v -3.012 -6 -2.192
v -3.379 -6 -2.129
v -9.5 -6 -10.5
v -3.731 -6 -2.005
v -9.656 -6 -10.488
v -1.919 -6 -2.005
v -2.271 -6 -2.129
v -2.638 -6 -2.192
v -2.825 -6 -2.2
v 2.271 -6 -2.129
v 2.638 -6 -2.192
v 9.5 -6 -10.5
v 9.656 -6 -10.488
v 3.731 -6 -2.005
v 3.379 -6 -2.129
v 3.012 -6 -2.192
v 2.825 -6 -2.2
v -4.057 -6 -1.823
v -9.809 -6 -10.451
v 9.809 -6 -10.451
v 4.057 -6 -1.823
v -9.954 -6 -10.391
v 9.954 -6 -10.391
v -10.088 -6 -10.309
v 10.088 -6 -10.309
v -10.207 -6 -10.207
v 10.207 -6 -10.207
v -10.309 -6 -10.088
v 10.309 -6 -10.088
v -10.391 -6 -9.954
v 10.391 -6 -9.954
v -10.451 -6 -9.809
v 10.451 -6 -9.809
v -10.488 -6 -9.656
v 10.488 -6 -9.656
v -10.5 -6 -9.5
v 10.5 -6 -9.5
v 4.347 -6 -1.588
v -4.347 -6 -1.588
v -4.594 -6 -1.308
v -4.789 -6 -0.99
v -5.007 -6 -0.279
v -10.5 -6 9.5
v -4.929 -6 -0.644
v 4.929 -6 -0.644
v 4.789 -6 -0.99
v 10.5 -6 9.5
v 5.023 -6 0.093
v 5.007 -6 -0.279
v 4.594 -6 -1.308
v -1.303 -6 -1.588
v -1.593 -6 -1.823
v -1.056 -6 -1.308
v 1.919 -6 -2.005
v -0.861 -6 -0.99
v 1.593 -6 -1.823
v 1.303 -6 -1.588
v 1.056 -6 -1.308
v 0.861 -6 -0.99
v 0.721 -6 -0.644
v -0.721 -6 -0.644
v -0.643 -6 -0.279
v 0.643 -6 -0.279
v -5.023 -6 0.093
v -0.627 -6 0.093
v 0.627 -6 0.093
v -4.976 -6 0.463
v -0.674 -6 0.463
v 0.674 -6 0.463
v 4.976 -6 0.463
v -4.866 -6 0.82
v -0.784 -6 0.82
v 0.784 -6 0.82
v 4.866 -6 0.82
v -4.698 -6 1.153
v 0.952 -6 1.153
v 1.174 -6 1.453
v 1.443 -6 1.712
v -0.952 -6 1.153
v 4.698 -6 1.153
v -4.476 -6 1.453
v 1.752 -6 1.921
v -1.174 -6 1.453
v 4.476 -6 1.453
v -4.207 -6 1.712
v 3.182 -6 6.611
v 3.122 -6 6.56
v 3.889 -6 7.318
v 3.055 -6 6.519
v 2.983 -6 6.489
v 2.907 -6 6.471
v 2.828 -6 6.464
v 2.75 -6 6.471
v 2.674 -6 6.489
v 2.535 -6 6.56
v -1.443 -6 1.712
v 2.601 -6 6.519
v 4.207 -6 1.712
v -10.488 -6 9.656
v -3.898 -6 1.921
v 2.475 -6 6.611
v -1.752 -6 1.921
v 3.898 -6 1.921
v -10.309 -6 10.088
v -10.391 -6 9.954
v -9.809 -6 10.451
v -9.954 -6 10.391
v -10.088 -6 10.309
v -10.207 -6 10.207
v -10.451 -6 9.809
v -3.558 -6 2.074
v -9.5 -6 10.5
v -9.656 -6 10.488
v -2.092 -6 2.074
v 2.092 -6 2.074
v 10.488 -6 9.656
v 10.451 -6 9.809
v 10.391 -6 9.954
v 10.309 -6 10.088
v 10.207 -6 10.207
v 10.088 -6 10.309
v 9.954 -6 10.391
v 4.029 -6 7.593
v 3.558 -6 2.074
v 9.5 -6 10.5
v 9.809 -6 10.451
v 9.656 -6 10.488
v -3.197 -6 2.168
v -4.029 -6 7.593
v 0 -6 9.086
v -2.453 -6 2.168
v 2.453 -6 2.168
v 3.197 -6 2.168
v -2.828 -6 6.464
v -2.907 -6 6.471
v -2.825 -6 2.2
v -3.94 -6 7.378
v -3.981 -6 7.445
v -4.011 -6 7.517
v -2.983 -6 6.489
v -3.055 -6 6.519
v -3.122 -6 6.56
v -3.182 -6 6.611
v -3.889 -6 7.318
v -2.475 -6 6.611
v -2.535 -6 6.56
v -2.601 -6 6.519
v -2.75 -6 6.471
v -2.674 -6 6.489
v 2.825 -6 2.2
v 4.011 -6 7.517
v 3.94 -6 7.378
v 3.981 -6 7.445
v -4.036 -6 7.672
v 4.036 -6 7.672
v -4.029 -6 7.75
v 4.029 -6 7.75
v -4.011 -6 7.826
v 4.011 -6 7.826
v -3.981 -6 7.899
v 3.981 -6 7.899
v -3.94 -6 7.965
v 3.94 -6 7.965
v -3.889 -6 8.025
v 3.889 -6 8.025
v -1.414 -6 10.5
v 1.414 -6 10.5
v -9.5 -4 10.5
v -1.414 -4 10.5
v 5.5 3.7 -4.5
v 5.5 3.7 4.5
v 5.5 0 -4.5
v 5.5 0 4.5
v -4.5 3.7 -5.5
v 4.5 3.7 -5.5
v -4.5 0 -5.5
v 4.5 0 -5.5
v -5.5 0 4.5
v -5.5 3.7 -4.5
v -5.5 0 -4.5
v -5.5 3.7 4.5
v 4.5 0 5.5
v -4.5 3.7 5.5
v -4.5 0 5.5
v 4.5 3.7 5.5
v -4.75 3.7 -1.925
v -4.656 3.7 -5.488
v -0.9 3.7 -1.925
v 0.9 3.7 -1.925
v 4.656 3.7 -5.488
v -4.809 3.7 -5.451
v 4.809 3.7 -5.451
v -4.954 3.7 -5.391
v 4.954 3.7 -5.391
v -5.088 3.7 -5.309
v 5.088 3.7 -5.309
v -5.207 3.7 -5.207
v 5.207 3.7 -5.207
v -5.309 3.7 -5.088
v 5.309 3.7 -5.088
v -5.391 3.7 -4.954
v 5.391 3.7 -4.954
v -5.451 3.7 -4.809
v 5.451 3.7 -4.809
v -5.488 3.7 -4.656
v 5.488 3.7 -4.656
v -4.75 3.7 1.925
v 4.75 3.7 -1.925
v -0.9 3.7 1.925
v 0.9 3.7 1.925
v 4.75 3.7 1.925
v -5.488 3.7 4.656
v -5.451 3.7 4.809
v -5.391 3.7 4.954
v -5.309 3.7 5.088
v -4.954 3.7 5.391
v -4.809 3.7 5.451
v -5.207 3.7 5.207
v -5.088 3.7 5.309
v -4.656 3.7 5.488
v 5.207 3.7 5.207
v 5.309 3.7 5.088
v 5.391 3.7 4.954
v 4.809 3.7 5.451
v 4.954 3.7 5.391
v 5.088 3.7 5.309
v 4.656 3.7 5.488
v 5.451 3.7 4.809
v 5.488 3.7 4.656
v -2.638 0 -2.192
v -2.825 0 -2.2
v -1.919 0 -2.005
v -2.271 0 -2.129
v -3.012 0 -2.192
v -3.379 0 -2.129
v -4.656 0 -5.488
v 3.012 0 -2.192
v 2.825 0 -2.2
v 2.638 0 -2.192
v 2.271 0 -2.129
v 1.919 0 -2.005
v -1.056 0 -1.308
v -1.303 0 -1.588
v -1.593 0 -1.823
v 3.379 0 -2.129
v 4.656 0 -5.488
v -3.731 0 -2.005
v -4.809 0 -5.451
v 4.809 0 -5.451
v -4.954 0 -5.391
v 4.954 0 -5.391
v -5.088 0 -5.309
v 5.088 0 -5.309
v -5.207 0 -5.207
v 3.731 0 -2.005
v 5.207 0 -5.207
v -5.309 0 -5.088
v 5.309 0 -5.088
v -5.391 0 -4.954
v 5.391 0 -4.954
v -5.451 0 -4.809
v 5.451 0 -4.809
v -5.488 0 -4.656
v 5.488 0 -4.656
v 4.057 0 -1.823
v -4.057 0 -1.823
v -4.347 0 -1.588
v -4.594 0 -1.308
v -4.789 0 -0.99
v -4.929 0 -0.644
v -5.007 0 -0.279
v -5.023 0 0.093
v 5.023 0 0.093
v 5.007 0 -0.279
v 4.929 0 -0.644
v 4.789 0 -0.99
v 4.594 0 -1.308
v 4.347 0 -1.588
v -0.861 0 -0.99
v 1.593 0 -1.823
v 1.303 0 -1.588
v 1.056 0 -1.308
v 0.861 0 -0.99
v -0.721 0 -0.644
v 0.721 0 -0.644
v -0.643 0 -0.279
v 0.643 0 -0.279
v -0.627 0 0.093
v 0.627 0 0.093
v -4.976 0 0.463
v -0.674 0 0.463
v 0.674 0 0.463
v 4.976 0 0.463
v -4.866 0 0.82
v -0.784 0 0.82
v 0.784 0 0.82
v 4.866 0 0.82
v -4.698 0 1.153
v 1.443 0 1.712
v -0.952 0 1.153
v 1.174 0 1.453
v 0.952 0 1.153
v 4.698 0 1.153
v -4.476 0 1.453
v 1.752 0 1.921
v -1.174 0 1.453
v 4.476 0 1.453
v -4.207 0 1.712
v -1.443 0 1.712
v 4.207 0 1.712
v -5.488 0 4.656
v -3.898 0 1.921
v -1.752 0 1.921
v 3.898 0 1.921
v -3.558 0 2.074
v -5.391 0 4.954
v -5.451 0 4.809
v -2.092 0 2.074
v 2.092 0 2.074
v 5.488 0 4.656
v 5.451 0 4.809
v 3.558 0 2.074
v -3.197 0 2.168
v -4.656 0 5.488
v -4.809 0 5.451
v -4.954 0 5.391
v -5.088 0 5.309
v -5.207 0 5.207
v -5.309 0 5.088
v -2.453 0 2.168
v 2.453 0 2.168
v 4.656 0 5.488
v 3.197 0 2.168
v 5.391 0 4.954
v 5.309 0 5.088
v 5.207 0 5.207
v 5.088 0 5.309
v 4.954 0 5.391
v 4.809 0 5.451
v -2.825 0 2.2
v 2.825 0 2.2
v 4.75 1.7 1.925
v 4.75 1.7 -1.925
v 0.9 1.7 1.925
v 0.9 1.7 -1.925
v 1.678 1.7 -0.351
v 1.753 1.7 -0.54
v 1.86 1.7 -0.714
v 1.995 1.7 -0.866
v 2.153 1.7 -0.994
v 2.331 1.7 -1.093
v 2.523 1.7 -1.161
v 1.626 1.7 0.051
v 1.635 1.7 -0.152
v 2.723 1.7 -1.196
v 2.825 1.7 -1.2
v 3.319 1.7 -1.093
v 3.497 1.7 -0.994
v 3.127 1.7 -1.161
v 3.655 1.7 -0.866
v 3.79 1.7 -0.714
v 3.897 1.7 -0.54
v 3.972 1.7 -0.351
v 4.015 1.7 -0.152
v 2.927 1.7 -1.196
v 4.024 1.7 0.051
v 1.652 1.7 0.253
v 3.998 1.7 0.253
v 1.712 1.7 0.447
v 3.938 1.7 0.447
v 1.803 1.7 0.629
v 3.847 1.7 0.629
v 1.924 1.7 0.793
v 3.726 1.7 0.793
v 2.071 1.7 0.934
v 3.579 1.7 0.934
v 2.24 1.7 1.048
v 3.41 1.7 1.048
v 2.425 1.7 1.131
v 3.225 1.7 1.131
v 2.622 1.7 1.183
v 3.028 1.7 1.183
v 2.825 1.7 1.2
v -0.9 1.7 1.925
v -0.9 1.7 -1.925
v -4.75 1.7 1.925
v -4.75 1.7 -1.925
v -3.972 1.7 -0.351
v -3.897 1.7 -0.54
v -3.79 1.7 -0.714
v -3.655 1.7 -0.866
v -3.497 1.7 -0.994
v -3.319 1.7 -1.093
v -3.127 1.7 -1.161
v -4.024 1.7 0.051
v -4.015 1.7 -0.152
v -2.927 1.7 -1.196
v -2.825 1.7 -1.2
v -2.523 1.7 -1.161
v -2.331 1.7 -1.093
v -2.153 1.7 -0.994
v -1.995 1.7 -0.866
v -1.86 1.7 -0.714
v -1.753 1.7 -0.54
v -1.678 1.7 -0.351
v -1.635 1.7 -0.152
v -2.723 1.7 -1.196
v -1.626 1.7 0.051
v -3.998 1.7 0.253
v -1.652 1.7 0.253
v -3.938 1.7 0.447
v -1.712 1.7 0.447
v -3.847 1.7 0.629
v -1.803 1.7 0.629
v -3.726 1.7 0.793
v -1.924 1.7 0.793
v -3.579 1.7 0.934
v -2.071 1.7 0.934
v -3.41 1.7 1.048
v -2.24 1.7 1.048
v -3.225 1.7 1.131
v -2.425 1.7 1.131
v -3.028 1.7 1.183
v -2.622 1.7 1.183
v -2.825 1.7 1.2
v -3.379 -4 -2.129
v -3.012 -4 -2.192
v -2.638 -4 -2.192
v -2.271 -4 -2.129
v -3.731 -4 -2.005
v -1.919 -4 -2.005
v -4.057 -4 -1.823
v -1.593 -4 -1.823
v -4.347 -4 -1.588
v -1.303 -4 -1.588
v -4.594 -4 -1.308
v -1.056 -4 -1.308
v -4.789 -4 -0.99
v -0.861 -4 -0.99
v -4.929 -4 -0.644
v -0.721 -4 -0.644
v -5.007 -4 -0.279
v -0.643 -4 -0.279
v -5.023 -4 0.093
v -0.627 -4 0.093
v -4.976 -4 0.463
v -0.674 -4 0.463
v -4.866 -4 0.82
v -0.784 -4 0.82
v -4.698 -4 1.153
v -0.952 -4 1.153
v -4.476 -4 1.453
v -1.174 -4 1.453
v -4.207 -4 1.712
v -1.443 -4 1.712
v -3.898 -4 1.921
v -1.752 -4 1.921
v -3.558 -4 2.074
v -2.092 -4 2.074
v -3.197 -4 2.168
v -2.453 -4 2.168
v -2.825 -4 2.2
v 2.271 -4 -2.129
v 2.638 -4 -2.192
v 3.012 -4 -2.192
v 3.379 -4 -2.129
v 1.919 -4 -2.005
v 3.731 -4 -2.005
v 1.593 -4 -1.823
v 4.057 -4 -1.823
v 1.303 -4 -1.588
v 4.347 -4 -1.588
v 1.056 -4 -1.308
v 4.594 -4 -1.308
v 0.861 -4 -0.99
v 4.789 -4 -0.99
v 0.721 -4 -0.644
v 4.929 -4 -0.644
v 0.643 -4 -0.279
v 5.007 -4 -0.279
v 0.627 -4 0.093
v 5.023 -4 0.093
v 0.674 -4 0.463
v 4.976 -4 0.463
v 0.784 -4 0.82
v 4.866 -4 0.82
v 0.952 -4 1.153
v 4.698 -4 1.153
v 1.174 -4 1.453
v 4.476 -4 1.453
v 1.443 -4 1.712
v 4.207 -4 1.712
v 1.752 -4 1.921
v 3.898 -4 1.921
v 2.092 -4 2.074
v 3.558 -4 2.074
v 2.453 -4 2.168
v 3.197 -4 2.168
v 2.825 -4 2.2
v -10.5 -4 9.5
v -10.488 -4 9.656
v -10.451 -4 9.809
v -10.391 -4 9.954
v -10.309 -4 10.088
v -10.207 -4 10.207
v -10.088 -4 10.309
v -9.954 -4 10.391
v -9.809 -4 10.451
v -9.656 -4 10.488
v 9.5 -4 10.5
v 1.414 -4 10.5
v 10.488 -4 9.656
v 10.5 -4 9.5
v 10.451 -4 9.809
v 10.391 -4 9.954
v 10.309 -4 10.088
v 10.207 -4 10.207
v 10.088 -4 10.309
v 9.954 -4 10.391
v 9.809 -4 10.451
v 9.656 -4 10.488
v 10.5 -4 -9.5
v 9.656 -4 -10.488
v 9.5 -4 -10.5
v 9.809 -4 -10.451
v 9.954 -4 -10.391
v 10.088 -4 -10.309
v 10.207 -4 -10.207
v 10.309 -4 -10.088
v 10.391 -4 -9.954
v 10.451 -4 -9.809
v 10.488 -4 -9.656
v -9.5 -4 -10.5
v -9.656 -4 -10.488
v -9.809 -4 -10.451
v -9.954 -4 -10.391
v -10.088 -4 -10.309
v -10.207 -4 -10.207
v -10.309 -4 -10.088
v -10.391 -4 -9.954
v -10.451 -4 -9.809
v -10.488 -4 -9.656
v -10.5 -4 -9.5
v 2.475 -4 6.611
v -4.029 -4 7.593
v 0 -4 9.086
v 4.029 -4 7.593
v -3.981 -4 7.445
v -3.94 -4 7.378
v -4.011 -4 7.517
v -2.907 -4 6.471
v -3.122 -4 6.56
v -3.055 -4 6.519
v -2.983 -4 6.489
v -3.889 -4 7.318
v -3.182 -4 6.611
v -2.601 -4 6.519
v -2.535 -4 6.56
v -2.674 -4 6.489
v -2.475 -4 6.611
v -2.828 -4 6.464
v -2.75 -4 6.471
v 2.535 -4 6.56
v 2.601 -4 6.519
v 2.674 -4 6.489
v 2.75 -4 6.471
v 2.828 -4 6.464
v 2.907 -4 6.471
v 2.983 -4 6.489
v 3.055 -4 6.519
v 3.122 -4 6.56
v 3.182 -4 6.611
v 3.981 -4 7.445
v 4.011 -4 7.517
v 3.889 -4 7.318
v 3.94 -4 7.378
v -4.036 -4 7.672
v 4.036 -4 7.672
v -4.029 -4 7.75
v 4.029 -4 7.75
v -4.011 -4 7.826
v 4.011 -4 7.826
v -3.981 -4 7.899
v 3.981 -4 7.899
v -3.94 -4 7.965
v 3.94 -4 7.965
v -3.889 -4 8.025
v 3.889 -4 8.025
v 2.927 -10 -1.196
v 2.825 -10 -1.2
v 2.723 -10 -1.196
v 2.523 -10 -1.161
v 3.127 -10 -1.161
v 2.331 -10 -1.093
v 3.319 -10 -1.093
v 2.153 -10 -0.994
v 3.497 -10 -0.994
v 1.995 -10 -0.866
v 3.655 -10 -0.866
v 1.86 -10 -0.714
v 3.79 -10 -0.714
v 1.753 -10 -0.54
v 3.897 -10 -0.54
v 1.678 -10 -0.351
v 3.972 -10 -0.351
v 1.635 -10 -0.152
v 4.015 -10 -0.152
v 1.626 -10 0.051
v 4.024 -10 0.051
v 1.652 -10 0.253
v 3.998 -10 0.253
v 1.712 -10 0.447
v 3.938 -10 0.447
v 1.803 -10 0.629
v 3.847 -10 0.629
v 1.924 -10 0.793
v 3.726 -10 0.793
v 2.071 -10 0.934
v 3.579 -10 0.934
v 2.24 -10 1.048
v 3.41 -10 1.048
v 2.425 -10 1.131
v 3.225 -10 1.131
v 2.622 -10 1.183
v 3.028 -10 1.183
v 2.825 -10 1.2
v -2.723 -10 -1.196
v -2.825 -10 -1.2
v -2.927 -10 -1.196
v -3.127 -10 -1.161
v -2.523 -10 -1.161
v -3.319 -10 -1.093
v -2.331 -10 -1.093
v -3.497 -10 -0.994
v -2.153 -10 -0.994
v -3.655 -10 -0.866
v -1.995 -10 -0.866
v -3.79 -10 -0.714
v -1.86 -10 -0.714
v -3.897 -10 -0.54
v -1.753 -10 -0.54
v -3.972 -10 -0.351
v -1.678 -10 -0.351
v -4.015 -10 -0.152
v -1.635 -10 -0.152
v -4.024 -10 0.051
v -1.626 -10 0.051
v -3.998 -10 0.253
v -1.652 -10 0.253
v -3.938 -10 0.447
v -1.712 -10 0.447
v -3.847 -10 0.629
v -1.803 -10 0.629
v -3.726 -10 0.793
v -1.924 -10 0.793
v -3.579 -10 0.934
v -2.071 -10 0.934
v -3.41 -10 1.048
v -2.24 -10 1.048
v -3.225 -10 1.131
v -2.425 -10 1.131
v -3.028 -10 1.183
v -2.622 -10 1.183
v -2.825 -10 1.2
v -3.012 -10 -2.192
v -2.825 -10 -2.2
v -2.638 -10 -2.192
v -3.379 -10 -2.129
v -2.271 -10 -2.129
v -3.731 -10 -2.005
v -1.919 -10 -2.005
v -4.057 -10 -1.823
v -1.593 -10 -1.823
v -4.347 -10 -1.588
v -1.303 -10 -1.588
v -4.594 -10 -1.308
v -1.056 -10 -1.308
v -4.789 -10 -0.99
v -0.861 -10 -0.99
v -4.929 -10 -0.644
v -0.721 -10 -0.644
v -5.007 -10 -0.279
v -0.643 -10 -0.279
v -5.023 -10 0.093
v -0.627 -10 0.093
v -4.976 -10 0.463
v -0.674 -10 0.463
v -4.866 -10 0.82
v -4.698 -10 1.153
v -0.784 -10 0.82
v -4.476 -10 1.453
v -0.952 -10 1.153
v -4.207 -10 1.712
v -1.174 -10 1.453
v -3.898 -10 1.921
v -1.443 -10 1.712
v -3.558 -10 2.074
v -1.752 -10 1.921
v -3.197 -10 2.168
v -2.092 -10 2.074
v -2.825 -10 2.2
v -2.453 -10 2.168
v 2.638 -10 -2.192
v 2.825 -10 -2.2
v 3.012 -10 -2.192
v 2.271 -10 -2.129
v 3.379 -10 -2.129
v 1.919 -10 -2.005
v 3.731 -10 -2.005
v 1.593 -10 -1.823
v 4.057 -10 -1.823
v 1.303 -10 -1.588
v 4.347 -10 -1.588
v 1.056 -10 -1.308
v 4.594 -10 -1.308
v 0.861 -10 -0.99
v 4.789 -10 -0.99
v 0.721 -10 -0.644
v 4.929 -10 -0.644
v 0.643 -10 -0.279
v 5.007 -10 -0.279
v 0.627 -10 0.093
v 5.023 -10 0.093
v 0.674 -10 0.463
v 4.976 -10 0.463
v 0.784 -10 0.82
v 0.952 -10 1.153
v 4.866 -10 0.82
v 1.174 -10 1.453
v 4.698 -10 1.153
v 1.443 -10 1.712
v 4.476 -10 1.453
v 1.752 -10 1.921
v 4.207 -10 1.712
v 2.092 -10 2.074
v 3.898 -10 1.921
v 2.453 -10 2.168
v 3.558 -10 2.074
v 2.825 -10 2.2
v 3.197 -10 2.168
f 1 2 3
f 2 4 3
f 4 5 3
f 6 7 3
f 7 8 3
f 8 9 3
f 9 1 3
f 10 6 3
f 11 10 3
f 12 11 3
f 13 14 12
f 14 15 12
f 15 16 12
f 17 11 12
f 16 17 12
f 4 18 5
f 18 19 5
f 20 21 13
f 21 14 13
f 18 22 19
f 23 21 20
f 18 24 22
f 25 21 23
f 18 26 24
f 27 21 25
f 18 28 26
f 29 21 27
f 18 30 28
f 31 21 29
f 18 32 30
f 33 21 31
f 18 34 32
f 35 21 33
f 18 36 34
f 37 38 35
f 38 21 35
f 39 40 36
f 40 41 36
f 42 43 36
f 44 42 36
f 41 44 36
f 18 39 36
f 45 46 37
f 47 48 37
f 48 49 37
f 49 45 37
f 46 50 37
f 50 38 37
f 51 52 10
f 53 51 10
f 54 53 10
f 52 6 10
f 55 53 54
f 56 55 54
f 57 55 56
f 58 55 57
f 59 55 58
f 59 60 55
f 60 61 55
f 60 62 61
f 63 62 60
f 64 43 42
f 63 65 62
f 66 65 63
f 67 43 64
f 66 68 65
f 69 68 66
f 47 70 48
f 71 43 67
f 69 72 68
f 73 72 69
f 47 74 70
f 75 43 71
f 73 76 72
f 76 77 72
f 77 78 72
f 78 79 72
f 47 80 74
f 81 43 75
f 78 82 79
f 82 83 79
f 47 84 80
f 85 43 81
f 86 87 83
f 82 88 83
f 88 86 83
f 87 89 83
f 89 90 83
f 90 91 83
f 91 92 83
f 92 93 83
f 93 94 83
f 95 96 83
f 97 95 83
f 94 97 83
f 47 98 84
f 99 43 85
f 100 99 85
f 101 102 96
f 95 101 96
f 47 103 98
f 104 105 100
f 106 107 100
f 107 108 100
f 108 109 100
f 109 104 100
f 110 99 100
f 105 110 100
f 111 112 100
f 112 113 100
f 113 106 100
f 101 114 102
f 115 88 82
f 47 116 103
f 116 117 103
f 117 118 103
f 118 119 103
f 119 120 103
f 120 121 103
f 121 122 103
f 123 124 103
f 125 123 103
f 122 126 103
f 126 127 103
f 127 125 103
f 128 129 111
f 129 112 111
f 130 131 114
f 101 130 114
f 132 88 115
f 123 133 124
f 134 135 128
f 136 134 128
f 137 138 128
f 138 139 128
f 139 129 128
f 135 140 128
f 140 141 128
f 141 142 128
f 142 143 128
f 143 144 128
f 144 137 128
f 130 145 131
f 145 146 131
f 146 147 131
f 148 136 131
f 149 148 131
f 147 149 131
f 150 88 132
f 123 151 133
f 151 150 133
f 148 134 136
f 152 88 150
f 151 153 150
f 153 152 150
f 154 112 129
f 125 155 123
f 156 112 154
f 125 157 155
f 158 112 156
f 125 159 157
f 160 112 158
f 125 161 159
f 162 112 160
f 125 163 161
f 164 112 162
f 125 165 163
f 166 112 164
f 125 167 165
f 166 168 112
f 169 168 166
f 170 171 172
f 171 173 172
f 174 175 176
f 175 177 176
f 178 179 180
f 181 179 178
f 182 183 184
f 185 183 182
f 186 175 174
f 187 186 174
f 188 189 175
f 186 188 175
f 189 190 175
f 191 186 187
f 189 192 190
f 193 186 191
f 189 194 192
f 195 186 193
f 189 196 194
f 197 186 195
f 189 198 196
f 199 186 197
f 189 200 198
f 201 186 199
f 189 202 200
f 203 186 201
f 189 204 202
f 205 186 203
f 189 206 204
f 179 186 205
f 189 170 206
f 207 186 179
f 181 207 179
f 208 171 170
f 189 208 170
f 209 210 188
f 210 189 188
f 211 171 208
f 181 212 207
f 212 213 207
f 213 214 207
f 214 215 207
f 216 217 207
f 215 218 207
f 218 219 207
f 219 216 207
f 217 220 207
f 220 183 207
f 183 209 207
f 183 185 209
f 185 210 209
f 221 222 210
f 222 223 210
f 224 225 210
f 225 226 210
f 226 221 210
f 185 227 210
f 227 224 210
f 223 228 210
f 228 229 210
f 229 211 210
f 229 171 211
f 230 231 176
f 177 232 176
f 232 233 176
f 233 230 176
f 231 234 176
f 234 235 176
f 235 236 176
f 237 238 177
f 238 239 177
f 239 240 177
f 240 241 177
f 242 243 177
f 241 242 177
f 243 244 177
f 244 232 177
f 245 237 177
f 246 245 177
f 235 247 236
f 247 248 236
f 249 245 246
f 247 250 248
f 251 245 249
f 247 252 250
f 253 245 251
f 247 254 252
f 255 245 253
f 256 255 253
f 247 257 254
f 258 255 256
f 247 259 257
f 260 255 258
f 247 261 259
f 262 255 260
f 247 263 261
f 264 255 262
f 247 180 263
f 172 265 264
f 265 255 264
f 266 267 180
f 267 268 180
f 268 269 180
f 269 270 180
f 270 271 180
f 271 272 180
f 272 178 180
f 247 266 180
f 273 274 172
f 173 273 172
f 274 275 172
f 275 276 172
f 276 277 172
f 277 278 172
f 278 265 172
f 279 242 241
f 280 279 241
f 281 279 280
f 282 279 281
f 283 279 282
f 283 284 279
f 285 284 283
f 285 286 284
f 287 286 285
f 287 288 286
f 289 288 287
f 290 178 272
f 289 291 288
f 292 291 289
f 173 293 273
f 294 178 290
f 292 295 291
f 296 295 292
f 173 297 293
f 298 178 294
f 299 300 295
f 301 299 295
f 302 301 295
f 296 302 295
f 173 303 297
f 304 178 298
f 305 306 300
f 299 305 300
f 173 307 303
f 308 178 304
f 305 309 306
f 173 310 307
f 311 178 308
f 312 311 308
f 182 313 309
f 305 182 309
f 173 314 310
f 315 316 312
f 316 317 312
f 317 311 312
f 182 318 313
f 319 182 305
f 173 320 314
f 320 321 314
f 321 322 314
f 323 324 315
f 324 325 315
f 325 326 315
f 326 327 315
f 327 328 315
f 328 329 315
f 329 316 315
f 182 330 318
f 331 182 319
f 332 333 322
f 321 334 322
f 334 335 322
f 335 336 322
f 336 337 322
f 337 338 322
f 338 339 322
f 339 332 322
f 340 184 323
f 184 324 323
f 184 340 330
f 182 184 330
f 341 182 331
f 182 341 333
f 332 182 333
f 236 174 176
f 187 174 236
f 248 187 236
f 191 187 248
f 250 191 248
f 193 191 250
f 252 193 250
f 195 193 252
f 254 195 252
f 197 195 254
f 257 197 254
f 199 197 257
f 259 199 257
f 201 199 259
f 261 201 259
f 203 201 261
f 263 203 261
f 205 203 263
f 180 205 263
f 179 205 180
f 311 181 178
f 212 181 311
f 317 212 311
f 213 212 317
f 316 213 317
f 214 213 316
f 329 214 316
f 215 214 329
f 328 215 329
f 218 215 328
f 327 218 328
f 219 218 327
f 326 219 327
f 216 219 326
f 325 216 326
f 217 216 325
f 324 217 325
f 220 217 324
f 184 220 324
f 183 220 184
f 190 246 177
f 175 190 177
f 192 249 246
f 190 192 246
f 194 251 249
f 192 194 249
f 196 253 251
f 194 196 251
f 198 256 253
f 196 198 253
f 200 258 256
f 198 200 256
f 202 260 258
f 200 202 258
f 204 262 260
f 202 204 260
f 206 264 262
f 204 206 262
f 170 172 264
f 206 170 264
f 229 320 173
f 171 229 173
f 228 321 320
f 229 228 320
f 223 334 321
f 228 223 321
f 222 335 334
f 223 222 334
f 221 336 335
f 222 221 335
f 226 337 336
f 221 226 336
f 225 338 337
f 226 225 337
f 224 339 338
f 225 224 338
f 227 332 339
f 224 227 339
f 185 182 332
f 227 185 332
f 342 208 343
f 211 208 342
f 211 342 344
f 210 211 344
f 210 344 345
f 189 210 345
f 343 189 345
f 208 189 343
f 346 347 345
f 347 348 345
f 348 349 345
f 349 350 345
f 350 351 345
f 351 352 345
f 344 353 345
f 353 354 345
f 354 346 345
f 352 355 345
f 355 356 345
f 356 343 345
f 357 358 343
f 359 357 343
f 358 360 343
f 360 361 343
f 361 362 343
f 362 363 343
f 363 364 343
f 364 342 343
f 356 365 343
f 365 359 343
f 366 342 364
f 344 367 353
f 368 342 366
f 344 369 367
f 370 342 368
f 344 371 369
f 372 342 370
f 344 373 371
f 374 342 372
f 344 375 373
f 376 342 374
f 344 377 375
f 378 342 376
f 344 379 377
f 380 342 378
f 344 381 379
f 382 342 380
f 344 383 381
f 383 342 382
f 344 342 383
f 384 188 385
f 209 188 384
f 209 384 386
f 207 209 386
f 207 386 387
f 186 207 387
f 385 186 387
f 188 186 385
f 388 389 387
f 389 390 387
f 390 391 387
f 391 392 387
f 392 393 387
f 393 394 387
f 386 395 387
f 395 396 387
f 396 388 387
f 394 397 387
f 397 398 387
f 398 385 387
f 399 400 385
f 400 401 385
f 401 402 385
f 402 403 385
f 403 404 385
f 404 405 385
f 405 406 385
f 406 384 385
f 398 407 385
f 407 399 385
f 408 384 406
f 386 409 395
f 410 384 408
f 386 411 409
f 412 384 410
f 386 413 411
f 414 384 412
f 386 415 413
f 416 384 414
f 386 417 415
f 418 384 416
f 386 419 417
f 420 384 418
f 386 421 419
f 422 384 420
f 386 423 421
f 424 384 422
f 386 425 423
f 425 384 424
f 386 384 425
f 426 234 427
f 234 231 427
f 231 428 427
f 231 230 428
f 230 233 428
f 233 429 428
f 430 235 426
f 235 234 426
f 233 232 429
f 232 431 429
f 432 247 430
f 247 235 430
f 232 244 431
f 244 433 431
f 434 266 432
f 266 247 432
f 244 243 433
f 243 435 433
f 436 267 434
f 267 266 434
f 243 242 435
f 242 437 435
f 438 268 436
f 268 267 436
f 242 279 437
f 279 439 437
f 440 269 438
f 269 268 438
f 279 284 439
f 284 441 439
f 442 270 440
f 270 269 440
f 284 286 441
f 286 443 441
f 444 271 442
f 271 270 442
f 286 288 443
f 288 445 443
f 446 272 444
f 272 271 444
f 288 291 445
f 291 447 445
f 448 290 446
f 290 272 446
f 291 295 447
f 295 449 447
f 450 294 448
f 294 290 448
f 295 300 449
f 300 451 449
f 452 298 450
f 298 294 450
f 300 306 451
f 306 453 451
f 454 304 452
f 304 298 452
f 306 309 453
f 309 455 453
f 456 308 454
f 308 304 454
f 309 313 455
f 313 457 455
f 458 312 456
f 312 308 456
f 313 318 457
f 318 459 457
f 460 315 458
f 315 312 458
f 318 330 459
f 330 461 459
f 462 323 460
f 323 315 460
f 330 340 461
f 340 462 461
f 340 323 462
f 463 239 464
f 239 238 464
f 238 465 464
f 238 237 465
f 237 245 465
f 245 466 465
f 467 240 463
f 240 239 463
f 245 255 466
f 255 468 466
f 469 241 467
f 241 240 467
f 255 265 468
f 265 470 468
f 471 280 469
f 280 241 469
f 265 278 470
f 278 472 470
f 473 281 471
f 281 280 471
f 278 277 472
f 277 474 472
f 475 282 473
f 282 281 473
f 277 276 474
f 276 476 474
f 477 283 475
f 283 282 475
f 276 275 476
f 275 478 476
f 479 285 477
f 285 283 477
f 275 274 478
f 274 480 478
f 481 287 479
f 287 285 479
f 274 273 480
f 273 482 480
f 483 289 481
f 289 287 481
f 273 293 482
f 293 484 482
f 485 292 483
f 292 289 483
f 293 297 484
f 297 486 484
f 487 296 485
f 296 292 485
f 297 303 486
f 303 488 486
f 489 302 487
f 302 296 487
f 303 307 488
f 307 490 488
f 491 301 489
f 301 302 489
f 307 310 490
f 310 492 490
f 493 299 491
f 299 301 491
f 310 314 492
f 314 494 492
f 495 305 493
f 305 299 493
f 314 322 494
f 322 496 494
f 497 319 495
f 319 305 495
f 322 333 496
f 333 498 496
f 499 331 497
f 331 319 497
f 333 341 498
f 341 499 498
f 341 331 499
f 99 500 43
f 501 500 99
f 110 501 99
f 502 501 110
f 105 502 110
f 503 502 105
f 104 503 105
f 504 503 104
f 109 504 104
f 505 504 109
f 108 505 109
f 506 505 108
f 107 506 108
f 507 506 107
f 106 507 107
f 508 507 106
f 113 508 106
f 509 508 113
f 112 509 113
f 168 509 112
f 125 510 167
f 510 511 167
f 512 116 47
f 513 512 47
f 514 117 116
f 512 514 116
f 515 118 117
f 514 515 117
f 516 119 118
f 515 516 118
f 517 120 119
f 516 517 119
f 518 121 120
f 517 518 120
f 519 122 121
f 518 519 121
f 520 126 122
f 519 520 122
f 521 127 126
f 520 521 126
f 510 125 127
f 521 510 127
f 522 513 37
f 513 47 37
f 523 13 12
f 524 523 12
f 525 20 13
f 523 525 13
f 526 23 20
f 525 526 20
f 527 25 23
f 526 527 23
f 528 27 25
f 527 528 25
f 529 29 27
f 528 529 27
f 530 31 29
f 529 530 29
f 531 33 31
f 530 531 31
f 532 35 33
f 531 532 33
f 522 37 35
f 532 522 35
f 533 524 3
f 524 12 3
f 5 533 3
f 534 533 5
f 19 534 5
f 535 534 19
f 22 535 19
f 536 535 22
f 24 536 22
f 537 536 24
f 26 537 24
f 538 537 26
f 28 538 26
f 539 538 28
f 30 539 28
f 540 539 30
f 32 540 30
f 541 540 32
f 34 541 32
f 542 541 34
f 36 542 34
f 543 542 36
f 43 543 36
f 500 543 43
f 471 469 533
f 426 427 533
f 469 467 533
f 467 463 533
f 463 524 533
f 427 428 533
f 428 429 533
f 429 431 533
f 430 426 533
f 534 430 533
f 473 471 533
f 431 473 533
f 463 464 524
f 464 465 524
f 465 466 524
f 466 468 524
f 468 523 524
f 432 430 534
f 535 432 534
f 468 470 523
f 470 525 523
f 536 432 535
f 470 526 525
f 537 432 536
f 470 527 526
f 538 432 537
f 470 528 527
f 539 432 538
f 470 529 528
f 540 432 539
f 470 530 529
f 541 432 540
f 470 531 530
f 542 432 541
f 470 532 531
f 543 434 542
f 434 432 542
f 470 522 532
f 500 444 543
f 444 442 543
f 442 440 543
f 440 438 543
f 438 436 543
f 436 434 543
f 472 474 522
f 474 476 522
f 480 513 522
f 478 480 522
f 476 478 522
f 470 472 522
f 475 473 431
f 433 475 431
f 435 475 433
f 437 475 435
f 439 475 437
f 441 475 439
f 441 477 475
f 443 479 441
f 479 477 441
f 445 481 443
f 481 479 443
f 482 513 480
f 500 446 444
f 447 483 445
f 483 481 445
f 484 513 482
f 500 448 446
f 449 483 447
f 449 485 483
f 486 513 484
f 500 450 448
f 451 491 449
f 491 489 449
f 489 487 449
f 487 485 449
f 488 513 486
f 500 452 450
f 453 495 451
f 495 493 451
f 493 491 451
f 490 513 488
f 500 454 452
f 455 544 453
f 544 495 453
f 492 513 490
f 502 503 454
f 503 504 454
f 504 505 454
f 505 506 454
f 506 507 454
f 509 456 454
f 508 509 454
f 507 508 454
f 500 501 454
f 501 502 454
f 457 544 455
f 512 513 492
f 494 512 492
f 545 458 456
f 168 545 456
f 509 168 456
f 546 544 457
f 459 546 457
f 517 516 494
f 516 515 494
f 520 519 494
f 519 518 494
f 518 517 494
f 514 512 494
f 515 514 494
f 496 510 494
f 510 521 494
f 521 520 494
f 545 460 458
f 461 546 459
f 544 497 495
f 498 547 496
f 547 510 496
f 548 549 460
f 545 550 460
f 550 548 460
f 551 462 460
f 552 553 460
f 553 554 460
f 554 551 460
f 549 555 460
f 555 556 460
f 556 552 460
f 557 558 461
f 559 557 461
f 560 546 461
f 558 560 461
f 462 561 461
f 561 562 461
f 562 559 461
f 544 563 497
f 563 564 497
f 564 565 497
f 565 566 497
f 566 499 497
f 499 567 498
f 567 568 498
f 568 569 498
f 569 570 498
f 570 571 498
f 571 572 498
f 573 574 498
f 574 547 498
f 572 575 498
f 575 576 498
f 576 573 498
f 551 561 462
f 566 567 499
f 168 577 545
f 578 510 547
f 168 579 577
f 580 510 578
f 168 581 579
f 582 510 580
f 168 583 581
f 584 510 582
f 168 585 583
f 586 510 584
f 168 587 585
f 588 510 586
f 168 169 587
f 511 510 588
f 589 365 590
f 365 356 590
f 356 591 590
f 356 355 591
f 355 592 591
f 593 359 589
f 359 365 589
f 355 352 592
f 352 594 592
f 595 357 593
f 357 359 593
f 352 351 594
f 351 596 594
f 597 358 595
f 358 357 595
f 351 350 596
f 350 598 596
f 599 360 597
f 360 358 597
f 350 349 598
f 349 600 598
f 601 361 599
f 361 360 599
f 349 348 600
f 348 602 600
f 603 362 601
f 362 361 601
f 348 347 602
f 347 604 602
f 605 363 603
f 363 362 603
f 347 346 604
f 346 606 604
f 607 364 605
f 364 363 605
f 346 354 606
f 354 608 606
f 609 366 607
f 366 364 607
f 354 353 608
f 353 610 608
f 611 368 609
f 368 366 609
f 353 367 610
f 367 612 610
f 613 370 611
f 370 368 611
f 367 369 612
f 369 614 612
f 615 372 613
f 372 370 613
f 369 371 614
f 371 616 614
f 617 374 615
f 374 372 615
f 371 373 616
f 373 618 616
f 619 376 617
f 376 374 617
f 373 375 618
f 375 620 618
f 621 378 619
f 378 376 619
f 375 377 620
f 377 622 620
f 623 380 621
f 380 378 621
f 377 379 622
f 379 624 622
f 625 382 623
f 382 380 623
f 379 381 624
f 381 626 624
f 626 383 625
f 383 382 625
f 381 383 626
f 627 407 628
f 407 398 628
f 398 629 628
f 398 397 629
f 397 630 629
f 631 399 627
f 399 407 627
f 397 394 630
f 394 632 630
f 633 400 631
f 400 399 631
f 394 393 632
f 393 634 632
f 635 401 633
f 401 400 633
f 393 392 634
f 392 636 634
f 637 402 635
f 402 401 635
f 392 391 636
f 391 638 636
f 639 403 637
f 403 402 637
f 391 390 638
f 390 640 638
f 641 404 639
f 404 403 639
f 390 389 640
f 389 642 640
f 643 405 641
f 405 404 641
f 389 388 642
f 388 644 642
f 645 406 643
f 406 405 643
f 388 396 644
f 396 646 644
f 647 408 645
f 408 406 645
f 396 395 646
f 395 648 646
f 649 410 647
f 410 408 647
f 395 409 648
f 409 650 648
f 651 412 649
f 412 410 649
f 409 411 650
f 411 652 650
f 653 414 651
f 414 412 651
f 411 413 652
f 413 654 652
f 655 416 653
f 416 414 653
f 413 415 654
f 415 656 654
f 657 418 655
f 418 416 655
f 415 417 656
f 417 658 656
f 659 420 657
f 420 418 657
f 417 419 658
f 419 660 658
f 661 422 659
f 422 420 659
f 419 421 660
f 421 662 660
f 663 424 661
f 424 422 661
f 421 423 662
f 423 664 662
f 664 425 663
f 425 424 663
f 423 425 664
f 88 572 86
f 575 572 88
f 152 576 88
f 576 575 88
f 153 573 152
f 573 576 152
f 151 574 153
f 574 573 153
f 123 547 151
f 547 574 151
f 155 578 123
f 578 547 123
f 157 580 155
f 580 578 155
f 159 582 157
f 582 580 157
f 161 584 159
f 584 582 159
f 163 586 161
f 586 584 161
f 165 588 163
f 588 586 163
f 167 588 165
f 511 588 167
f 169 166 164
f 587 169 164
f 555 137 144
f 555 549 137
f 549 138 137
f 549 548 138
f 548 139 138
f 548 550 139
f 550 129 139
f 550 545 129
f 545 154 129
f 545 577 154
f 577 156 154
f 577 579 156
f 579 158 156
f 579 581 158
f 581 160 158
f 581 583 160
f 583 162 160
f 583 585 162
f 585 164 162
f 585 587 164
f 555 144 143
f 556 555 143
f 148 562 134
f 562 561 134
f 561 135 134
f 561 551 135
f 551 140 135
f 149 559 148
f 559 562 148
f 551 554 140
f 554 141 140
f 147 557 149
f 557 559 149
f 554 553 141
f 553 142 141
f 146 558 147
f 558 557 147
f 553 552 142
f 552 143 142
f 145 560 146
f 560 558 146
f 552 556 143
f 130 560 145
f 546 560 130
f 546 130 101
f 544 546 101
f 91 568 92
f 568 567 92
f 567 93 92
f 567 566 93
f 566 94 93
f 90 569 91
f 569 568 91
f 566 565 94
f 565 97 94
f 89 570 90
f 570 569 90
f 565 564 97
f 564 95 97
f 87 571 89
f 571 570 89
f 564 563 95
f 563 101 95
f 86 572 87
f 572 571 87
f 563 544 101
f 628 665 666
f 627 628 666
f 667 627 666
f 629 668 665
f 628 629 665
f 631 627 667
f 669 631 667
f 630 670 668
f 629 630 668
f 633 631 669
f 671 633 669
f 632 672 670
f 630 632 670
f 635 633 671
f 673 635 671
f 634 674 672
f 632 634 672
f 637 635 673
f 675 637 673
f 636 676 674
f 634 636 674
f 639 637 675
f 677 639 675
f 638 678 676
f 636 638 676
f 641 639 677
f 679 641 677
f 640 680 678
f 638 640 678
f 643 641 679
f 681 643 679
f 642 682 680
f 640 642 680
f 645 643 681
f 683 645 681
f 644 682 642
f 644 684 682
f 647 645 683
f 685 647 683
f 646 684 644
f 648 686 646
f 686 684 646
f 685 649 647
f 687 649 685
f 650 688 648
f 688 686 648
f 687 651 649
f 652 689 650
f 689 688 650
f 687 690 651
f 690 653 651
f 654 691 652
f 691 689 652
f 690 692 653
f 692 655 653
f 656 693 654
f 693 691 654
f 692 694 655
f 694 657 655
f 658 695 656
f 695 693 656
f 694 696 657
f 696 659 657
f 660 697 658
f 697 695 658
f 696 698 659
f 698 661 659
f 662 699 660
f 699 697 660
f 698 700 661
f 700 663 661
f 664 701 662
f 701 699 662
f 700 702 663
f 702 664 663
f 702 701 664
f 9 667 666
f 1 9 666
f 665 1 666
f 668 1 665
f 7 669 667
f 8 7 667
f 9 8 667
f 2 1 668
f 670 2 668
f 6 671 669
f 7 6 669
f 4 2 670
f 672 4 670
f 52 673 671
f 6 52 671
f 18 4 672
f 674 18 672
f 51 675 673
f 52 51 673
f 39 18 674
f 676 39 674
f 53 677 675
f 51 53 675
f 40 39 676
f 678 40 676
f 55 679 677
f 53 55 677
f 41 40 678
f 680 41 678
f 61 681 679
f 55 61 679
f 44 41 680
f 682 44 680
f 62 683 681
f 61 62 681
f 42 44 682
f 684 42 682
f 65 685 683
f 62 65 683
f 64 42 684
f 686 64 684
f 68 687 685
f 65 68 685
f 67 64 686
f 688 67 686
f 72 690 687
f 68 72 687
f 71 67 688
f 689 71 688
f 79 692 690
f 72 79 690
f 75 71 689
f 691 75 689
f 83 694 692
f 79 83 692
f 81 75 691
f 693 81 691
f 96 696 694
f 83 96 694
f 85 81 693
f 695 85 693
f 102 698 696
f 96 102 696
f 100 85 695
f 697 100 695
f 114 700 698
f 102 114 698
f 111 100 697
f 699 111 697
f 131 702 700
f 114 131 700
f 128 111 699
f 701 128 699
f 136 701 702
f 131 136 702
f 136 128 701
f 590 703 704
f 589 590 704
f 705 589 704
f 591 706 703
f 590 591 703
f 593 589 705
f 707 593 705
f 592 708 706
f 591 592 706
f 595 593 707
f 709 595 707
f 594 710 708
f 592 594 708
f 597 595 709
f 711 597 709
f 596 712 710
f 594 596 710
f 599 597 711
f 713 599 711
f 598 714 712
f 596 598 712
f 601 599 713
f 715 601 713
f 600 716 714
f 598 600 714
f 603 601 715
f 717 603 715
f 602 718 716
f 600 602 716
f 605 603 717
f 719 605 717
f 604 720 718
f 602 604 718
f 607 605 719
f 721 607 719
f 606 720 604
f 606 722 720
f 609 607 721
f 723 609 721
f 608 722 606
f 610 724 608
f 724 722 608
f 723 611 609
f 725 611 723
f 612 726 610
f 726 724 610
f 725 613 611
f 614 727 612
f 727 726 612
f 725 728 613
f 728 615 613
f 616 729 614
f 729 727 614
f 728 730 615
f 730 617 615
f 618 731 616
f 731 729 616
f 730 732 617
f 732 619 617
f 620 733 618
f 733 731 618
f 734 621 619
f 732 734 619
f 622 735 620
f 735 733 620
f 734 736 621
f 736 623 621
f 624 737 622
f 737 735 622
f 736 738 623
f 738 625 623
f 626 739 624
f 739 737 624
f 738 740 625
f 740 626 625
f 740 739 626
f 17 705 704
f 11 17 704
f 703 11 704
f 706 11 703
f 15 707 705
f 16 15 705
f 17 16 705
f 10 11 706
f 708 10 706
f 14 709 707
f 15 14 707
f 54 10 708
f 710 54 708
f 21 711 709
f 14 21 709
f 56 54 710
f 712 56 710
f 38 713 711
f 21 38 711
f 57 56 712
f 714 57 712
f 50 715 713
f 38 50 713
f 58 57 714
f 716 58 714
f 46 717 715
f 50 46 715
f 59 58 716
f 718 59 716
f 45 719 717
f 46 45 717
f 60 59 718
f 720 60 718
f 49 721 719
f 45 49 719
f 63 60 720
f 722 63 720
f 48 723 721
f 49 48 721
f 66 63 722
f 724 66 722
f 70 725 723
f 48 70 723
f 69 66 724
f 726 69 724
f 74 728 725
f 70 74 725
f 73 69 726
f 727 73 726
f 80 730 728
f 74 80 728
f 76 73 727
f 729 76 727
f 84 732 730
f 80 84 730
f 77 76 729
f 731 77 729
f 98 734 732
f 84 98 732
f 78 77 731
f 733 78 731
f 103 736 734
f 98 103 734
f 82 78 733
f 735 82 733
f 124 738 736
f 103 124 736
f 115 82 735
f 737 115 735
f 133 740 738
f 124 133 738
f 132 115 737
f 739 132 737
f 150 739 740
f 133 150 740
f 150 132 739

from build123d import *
from build123d.topology import SkipClean

# Parameters (mm, degrees)
SKETCH1_W           = 11
SKETCH1_H           = 11
BOSS_EXTRUDE1_DEPTH = 3.7
FILLET1_R           = 1
SKETCH2_W           = 3.85
SKETCH2_H           = 3.85
CUT_EXTRUDE1_DEPTH  = 2
SKETCH4_R           = 2.2
BOSS_EXTRUDE2_DEPTH = 6
BOSS_EXTRUDE3_DEPTH = 2
SKETCH3_R           = 1.2
CUT_EXTRUDE2_DEPTH  = 18.736685147
CUT_EXTRUDE3_DEPTH  = 17.726924403
SKETCH8_R           = 2.2
SKETCH8_R_2         = 1.2
BOSS_EXTRUDE4_DEPTH = 4


with BuildPart() as part:
    # Sketch1 → Boss-Extrude1 (new body)
    with BuildSketch(Plane(origin=(0, 0, 0), x_dir=(1, 0, 0), z_dir=(0, 1, 0))):
        Rectangle(SKETCH1_W, SKETCH1_H)
    extrude(amount=BOSS_EXTRUDE1_DEPTH)

    # Fillet1
    fillet1_edges = [part.edges().sort_by_distance(p)[0] for p in [
        (5.5, 1.85, 5.5),
        (-5.5, 1.85, 5.5),
        (-5.5, 1.85, -5.5),
        (5.5, 1.85, -5.5),
    ]]
    fillet(fillet1_edges, radius=FILLET1_R)

    # Sketch2 → Cut-Extrude1 (cut)
    with BuildSketch(Plane(origin=(0, 3.7, 0), x_dir=(1, 0, 0), z_dir=(0, 1, 0))):
        with Locations((-2.825, 0)):
            Rectangle(SKETCH2_W, SKETCH2_H)
        with Locations((2.825, 0)):
            Rectangle(SKETCH2_W, SKETCH2_H)
    extrude(amount=-CUT_EXTRUDE1_DEPTH, mode=Mode.SUBTRACT)

    # Sketch4 → Boss-Extrude2 (add)
    with BuildSketch(Plane(origin=(0, 0, 0), x_dir=(-1, 0, 0), z_dir=(0, -1, 0))):
        with Locations(Location((2.825, 0, 0), (0, 0, 90))):
            Circle(SKETCH4_R)
        with Locations(Location((-2.825, 0, 0), (0, 0, 90))):
            Circle(SKETCH4_R)
    extrude(amount=BOSS_EXTRUDE2_DEPTH)

    # Sketch5 → Boss-Extrude3 (add)
    with BuildSketch(Plane(origin=(0, -6, 0), x_dir=(-1, 0, 0), z_dir=(0, -1, 0))):
        with BuildLine():
            Line((9.5, 10.5), (-9.5, 10.5))
            ThreePointArc((-9.5, 10.5), (-10.207106781, 10.207106781), (-10.5, 9.5))
            Line((-10.5, 9.5), (-10.5, -9.5))
            ThreePointArc((-10.5, -9.5), (-10.207106781, -10.207106781), (-9.5, -10.5))
            Line((-9.5, -10.5), (9.5, -10.5))
            ThreePointArc((9.5, -10.5), (10.207106781, -10.207106781), (10.5, -9.5))
            Line((10.5, -9.5), (10.5, 9.5))
            ThreePointArc((10.5, 9.5), (10.207106781, 10.207106781), (9.5, 10.5))
        make_face()
    extrude(amount=-BOSS_EXTRUDE3_DEPTH)

    # Sketch3 → Cut-Extrude2 (cut, through all)
    with BuildSketch(Plane(origin=(0, 3.7, 0), x_dir=(1, 0, 0), z_dir=(0, 1, 0))):
        with Locations(Location((-2.825, 0, 0), (0, 0, 270))):
            Circle(SKETCH3_R)
        with Locations(Location((2.825, 0, 0), (0, 0, 270))):
            Circle(SKETCH3_R)
    extrude(amount=-CUT_EXTRUDE2_DEPTH, mode=Mode.SUBTRACT)

    # Sketch7 → Cut-Extrude3 (cut, through all)
    with BuildSketch(Plane(origin=(0, -4, 0), x_dir=(1, 0, 0), z_dir=(0, 1, 0))):
        with BuildLine():
            Line((0, -9.085786438), (1.414213562, -10.5))
            Line((1.414213562, -10.5), (3.889087297, -8.025126266))
            ThreePointArc((3.889087297, -8.025126266), (4.035533906, -7.671572875), (3.889087297, -7.318019485))
            Line((3.889087297, -7.318019485), (3.181980515, -6.610912703))
            ThreePointArc((3.181980515, -6.610912703), (2.828427125, -6.464466094), (2.474873734, -6.610912703))
            Line((2.474873734, -6.610912703), (0, -9.085786438))
        make_face()
        with BuildLine():
            Line((-3.889087297, -8.025126266), (-1.414213562, -10.5))
            Line((-1.414213562, -10.5), (0, -9.085786438))
            Line((0, -9.085786438), (-2.474873734, -6.610912703))
            ThreePointArc((-2.474873734, -6.610912703), (-2.828427125, -6.464466094), (-3.181980515, -6.610912703))
            Line((-3.181980515, -6.610912703), (-3.889087297, -7.318019485))
            ThreePointArc((-3.889087297, -7.318019485), (-4.035533906, -7.671572875), (-3.889087297, -8.025126266))
        make_face()
        Polygon((-1.414213562, -10.5), (1.414213562, -10.5), (0, -9.085786438), align=None)
    extrude(amount=-CUT_EXTRUDE3_DEPTH, mode=Mode.SUBTRACT)

    # Sketch8 → Boss-Extrude4 (add)
    # profile 1 of 2: a face of its own
    with SkipClean():  # the faces are left unmerged after this step: merging them gives an invalid solid
        with BuildSketch(Plane.XZ.offset(6)):
            with Locations(Location((-2.825, 0, 0), (0, 0, 90))):
                Circle(SKETCH8_R)
            with Locations(Location((-2.825, 0, 0), (0, 0, 270))):
                Circle(SKETCH8_R_2, mode=Mode.SUBTRACT)
        # profile 2 of 2: a face of its own
        with BuildSketch(Plane.XZ.offset(6)):
            with Locations(Location((2.825, 0, 0), (0, 0, 90))):
                Circle(SKETCH8_R)
            with Locations(Location((2.825, 0, 0), (0, 0, 270))):
                Circle(SKETCH8_R_2, mode=Mode.SUBTRACT)
        extrude(amount=BOSS_EXTRUDE4_DEPTH)


solid = part.part
